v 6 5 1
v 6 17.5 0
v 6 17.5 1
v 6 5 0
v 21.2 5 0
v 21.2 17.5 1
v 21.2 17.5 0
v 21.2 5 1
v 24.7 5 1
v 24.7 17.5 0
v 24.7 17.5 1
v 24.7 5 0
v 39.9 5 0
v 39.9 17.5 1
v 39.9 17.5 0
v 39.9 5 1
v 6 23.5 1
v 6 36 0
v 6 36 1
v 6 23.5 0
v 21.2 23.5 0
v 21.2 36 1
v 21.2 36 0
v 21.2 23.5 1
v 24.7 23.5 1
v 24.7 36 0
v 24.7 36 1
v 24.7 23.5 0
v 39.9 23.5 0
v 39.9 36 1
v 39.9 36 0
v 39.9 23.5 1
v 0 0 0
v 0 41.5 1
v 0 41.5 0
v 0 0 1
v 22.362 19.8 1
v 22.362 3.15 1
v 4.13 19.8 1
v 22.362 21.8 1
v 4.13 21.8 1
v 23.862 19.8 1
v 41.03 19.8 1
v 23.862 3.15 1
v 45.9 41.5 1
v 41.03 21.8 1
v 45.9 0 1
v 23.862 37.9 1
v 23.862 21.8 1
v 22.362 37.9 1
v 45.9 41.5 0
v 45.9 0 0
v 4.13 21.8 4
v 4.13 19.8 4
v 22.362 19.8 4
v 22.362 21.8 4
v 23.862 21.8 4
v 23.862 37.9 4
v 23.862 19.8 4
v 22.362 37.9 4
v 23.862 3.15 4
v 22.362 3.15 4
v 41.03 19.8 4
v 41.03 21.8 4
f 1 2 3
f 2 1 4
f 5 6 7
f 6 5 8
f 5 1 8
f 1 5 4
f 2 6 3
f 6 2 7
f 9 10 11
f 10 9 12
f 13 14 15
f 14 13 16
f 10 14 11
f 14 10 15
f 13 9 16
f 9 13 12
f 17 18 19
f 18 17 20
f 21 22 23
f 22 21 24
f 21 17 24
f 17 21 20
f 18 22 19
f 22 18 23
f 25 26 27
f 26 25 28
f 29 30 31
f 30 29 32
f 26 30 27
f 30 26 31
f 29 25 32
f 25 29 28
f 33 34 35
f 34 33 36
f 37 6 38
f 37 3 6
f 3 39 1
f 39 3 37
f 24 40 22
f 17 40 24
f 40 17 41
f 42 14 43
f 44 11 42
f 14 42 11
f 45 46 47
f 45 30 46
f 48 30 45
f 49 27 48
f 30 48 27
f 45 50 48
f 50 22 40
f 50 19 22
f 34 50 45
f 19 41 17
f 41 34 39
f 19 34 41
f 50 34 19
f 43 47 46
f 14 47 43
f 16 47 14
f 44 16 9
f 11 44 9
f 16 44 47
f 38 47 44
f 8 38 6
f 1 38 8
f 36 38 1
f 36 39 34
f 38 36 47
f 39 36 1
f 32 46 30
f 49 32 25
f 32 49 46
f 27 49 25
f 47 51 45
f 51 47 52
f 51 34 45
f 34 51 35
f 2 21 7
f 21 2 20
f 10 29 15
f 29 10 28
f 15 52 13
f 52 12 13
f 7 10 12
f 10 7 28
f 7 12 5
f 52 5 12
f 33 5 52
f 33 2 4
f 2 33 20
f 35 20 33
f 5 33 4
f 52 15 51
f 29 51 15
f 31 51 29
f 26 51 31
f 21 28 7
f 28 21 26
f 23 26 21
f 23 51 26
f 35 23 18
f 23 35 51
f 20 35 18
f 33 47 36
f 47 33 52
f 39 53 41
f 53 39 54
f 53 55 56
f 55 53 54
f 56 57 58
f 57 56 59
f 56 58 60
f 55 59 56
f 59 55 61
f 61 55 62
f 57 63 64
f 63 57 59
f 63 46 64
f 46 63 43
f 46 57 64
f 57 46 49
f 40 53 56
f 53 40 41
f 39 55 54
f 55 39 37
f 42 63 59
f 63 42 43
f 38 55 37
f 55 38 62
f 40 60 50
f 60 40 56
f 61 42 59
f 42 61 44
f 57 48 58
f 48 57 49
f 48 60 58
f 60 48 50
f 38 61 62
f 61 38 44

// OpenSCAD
/* KeySizeTest
 * Make a small 2x2 matrix to test keyholes.
 */
keyCols = 2;
keyRows = 2;
keyX = 15.2;
keyY = 12.5;
keySpace = 3.5;
vKeySpace=6;
edgeSpaceAddition = 4;
edgeSpace = (edgeSpaceAddition*2)-keySpace;
keyZ = -1;

moduleX = (edgeSpace+edgeSpaceAddition)+(keySpace*keyCols)+keyX*(keyCols-1)+keyX;
moduleY = (edgeSpaceAddition*2-keySpace)+(vKeySpace*keyRows)+keyY*(keyRows-1)+keyY;
moduleZ = 1;

keySize = [keyX, keyY, moduleZ+2];

function position(x,y,z) = [edgeSpace+keySpace*x+keyX*(x-1)-(edgeSpaceAddition/2), edgeSpace-keySpace+(vKeySpace)*y+keyY*(y-1)-(edgeSpaceAddition/2), z];

module keyHoles (yStart, yEnd, xStart, xEnd){
  for(y = [yStart:yEnd]){
    for(x = [xStart:xEnd]){
      translate(position(x,y,keyZ)) cube(keySize);
    }
  }
}

module hBeam (bStart, bEnd){
  for (b = [bStart:bEnd]){  
    color([0.5,0,0]){
      translate(position(0.9,b-0.2,1)){  
        cube([moduleX-(edgeSpace*2),2,3]);
      }
    }
  }
}

module vBeam (bStart, bEnd){
  for (b = [bStart:bEnd]){  
    color([0.5,0,0]){
      translate(position(b-0.125,0.9,1)){  
        cube([1.5,moduleY-(edgeSpace*1.5),3]);
      }
    }
  }
}


difference(){
  cube([moduleX,moduleY,moduleZ]);
  keyHoles(1,2,1,2);
}

hBeam(2, keyRows);
vBeam(2, keyCols);
